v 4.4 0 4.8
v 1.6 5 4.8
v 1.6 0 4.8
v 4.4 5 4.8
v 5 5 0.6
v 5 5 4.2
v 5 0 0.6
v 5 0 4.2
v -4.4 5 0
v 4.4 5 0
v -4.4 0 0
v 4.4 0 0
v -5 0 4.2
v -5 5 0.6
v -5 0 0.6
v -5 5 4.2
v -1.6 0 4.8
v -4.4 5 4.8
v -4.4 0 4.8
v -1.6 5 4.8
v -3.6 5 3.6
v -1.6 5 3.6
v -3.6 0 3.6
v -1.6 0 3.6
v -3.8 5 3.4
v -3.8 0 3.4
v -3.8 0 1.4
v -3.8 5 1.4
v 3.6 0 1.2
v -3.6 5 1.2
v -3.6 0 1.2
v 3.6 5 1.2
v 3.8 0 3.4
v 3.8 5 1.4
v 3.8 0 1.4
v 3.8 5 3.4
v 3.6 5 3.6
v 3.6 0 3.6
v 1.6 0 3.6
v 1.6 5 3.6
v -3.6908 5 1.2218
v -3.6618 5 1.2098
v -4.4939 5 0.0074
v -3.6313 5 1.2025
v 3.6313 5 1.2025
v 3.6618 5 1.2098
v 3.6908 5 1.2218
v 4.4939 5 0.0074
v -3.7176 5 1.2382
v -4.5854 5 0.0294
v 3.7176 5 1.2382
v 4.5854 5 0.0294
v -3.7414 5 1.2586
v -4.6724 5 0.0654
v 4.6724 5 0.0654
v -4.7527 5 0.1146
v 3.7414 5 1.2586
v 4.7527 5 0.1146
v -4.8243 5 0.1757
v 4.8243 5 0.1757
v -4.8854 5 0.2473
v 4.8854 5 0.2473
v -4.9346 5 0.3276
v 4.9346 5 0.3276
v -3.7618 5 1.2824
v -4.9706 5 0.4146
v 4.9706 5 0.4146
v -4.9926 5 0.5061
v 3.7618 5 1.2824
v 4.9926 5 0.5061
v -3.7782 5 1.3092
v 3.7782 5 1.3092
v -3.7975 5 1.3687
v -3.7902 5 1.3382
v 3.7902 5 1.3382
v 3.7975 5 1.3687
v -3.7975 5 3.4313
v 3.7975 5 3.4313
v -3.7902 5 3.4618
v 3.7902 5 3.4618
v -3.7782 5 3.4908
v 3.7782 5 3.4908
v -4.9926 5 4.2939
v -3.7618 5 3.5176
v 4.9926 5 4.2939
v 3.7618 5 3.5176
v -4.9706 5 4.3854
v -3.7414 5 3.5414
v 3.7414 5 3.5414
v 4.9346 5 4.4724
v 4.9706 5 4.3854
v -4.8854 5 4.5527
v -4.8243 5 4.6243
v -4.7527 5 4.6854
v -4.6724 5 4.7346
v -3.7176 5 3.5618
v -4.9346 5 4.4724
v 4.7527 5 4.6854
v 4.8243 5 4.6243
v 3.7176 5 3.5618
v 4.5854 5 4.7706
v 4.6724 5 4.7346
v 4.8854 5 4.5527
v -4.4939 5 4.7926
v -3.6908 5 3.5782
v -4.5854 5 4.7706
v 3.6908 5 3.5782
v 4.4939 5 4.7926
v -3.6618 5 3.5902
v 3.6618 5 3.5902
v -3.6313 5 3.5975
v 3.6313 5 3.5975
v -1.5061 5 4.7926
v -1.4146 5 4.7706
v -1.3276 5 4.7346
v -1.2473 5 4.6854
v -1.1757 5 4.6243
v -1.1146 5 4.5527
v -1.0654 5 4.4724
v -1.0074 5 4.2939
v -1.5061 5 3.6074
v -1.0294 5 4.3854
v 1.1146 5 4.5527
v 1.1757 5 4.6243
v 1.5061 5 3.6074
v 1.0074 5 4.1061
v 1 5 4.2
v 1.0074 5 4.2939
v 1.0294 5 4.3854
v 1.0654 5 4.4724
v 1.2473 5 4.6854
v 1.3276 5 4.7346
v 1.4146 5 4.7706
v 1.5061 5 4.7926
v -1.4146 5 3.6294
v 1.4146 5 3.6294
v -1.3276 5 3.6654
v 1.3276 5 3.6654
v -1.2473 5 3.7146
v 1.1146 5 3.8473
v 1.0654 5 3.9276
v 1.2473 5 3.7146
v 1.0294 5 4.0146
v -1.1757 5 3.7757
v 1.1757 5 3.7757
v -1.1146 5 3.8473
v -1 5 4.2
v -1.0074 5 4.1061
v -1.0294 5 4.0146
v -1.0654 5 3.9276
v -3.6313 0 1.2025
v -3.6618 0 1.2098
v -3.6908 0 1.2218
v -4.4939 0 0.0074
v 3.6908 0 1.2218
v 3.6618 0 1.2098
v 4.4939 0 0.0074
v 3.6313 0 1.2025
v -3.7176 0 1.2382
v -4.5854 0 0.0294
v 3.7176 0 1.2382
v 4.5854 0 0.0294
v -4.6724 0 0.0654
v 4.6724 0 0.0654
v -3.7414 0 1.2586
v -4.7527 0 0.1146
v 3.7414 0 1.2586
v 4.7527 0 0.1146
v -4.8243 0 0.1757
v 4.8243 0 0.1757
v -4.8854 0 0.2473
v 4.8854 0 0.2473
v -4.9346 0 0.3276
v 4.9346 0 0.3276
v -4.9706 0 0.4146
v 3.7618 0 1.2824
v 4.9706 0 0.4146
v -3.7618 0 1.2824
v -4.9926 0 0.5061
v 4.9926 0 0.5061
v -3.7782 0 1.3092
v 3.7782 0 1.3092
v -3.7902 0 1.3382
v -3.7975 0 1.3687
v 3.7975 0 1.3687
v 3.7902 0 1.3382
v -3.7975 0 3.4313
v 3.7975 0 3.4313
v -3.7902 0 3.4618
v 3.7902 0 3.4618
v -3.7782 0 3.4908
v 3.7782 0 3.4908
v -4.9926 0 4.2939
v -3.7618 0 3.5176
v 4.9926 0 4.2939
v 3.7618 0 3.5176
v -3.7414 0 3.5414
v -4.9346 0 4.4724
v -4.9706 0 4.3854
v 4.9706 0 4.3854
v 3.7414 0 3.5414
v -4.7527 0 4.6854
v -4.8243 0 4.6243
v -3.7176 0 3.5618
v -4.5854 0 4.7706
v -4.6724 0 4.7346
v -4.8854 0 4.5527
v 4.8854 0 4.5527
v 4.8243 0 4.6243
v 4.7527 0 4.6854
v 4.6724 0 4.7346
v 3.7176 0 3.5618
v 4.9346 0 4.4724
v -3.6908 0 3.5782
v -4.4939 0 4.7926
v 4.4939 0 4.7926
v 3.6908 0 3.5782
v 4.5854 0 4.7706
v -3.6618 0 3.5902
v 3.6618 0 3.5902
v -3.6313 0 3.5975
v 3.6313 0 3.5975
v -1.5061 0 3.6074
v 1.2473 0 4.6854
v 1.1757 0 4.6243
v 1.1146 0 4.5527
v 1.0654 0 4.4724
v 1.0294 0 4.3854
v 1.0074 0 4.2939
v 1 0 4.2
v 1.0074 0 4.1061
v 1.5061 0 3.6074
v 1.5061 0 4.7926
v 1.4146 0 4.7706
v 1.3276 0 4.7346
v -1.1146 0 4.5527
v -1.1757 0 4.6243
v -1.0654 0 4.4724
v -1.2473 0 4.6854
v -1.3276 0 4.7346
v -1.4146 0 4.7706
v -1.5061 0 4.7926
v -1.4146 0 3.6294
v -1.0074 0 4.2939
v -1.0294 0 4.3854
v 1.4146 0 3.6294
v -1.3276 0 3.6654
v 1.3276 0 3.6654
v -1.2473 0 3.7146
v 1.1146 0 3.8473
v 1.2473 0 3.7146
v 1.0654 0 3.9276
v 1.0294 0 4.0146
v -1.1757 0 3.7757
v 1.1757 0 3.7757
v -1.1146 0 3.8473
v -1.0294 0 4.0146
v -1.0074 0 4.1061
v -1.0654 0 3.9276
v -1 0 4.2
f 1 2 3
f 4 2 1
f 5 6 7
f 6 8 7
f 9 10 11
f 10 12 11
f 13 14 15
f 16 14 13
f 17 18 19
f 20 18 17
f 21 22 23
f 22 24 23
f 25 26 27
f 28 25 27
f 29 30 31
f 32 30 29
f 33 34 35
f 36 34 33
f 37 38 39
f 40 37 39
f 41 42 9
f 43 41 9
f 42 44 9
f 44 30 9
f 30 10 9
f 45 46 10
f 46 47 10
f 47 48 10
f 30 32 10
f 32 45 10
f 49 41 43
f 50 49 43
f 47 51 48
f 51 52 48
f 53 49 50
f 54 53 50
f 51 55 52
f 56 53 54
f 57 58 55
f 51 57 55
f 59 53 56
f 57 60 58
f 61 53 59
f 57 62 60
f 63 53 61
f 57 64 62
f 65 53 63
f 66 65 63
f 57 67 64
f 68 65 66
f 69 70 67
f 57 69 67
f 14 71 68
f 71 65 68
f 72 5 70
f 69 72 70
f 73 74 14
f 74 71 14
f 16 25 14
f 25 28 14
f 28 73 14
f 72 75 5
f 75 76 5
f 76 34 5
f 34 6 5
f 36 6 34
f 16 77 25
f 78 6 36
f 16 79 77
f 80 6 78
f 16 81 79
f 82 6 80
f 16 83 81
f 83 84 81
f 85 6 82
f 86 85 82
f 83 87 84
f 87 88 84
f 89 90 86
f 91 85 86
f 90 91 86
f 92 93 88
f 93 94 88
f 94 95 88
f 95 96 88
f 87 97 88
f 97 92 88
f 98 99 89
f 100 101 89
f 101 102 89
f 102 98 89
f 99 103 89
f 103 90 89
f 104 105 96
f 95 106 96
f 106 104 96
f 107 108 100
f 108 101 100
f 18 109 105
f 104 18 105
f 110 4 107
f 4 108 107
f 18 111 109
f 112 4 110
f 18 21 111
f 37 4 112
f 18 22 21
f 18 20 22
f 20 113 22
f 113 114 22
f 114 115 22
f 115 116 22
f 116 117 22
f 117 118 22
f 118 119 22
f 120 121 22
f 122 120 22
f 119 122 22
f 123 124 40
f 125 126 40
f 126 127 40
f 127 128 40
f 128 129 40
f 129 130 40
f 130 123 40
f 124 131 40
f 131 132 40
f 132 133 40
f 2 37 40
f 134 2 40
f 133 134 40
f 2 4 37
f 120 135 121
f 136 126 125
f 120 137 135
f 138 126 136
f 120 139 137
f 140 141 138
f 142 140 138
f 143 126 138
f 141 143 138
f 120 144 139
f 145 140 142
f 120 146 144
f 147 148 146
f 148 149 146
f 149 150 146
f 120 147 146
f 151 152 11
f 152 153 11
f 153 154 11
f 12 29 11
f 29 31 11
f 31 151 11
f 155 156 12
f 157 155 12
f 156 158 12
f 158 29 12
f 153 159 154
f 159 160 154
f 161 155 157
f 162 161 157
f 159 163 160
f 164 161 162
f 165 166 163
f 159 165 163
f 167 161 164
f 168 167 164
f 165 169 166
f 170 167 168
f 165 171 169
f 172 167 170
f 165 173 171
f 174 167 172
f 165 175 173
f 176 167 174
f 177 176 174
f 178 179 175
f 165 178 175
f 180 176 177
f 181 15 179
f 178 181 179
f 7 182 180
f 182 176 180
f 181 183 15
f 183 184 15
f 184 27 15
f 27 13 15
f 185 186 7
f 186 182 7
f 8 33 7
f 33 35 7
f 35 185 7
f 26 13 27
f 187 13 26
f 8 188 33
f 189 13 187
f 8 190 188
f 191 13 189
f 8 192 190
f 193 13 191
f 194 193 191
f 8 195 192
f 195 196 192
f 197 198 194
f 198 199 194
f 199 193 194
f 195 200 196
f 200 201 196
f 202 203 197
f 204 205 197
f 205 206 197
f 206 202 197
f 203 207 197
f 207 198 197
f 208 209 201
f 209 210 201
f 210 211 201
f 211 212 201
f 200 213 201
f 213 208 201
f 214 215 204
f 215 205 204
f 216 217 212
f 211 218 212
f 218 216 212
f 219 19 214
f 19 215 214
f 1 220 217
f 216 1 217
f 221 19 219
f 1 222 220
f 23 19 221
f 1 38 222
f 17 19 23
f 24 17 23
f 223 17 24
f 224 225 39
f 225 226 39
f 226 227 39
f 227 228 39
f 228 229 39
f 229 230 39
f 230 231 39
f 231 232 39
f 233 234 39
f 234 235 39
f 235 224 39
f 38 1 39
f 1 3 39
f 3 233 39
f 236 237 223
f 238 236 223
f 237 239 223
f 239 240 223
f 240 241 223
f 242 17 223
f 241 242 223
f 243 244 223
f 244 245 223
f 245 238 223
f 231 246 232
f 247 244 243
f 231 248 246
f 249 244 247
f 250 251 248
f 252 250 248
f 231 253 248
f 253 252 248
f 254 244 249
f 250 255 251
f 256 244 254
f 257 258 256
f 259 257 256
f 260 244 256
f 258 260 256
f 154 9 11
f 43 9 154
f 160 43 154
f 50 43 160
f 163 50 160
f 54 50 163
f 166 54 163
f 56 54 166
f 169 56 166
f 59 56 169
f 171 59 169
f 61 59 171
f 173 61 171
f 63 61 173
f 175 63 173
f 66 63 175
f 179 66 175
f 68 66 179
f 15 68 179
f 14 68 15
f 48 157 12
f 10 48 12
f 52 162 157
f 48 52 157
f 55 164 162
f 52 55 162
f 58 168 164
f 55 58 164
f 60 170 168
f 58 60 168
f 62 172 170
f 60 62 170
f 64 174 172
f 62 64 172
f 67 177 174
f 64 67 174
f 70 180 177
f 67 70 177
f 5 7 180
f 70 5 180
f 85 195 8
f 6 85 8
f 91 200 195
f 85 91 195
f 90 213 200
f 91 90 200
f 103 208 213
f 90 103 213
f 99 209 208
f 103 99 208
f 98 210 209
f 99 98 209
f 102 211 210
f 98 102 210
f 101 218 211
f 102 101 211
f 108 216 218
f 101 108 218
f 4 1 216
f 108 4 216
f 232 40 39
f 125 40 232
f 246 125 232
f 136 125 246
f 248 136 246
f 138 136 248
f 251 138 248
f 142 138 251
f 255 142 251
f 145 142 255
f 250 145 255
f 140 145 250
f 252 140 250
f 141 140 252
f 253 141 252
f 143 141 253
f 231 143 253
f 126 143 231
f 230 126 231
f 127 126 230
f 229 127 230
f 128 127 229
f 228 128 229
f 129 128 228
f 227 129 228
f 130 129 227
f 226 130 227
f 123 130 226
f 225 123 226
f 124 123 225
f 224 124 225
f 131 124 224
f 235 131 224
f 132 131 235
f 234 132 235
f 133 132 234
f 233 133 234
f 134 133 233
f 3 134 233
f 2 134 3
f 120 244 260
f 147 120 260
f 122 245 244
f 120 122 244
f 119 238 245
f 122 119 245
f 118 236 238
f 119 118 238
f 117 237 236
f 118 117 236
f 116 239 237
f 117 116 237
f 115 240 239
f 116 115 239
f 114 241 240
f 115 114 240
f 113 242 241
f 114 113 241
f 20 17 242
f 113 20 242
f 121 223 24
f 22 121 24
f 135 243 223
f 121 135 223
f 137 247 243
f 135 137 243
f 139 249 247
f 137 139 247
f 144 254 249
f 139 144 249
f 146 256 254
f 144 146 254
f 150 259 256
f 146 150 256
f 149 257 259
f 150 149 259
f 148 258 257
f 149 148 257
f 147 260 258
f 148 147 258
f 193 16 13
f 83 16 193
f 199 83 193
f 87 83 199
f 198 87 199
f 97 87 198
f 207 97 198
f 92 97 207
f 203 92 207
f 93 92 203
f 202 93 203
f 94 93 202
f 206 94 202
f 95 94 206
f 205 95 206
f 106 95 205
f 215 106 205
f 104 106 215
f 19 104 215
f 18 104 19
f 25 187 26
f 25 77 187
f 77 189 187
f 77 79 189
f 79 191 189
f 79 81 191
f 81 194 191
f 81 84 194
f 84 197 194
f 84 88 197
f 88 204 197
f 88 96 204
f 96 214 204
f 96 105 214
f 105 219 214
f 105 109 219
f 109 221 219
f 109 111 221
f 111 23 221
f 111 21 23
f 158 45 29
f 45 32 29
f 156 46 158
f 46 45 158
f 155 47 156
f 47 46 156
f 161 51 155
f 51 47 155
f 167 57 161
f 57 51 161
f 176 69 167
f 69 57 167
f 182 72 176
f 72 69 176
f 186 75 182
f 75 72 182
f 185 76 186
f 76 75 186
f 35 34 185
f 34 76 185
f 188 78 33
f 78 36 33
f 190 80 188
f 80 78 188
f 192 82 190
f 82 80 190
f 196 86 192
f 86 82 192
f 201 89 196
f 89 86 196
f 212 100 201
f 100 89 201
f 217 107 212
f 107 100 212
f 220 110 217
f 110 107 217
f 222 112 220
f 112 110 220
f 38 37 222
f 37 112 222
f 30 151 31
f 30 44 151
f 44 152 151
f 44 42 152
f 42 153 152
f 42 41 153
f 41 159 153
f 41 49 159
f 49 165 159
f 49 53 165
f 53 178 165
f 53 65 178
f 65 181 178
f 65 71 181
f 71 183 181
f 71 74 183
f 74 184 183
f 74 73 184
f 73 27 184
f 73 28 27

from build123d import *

# Parameters (mm, degrees)
BOSS_EXTRUDE1_DEPTH = 5
FILLET1_R           = 0.6
FILLET2_R           = 0.2


with BuildPart() as part:
    # Sketch1 → Boss-Extrude1 (new body)
    with BuildSketch(Plane(origin=(0, 0, 0), x_dir=(1, 0, 0), z_dir=(0, 1, 0))):
        Polygon((-5, 0), (5, 0), (5, -4.8), (1, -4.8), (1, -3.6), (3.8, -3.6), (3.8, -1.2), (-3.8, -1.2), (-3.8, -3.6), (-1, -3.6), (-1, -4.8), (-5, -4.8), align=None)
    extrude(amount=BOSS_EXTRUDE1_DEPTH)

    # Fillet1
    fillet1_edges = [part.edges().sort_by_distance(p)[0] for p in [
        (-5, 2.5, 0),
        (5, 2.5, 0),
        (5, 2.5, 4.8),
        (1, 2.5, 4.8),
        (1, 2.5, 3.6),
        (-1, 2.5, 3.6),
        (-1, 2.5, 4.8),
        (-5, 2.5, 4.8),
    ]]
    fillet(fillet1_edges, radius=FILLET1_R - 0.0001)  # a hair under: the kernel refuses the full size

    # Fillet2
    fillet2_edges = [part.edges().sort_by_distance(p)[0] for p in [
        (3.8, 2.5, 3.6),
        (3.8, 2.5, 1.2),
        (-3.8, 2.5, 1.2),
        (-3.8, 2.5, 3.6),
    ]]
    fillet(fillet2_edges, radius=FILLET2_R)


solid = part.part
